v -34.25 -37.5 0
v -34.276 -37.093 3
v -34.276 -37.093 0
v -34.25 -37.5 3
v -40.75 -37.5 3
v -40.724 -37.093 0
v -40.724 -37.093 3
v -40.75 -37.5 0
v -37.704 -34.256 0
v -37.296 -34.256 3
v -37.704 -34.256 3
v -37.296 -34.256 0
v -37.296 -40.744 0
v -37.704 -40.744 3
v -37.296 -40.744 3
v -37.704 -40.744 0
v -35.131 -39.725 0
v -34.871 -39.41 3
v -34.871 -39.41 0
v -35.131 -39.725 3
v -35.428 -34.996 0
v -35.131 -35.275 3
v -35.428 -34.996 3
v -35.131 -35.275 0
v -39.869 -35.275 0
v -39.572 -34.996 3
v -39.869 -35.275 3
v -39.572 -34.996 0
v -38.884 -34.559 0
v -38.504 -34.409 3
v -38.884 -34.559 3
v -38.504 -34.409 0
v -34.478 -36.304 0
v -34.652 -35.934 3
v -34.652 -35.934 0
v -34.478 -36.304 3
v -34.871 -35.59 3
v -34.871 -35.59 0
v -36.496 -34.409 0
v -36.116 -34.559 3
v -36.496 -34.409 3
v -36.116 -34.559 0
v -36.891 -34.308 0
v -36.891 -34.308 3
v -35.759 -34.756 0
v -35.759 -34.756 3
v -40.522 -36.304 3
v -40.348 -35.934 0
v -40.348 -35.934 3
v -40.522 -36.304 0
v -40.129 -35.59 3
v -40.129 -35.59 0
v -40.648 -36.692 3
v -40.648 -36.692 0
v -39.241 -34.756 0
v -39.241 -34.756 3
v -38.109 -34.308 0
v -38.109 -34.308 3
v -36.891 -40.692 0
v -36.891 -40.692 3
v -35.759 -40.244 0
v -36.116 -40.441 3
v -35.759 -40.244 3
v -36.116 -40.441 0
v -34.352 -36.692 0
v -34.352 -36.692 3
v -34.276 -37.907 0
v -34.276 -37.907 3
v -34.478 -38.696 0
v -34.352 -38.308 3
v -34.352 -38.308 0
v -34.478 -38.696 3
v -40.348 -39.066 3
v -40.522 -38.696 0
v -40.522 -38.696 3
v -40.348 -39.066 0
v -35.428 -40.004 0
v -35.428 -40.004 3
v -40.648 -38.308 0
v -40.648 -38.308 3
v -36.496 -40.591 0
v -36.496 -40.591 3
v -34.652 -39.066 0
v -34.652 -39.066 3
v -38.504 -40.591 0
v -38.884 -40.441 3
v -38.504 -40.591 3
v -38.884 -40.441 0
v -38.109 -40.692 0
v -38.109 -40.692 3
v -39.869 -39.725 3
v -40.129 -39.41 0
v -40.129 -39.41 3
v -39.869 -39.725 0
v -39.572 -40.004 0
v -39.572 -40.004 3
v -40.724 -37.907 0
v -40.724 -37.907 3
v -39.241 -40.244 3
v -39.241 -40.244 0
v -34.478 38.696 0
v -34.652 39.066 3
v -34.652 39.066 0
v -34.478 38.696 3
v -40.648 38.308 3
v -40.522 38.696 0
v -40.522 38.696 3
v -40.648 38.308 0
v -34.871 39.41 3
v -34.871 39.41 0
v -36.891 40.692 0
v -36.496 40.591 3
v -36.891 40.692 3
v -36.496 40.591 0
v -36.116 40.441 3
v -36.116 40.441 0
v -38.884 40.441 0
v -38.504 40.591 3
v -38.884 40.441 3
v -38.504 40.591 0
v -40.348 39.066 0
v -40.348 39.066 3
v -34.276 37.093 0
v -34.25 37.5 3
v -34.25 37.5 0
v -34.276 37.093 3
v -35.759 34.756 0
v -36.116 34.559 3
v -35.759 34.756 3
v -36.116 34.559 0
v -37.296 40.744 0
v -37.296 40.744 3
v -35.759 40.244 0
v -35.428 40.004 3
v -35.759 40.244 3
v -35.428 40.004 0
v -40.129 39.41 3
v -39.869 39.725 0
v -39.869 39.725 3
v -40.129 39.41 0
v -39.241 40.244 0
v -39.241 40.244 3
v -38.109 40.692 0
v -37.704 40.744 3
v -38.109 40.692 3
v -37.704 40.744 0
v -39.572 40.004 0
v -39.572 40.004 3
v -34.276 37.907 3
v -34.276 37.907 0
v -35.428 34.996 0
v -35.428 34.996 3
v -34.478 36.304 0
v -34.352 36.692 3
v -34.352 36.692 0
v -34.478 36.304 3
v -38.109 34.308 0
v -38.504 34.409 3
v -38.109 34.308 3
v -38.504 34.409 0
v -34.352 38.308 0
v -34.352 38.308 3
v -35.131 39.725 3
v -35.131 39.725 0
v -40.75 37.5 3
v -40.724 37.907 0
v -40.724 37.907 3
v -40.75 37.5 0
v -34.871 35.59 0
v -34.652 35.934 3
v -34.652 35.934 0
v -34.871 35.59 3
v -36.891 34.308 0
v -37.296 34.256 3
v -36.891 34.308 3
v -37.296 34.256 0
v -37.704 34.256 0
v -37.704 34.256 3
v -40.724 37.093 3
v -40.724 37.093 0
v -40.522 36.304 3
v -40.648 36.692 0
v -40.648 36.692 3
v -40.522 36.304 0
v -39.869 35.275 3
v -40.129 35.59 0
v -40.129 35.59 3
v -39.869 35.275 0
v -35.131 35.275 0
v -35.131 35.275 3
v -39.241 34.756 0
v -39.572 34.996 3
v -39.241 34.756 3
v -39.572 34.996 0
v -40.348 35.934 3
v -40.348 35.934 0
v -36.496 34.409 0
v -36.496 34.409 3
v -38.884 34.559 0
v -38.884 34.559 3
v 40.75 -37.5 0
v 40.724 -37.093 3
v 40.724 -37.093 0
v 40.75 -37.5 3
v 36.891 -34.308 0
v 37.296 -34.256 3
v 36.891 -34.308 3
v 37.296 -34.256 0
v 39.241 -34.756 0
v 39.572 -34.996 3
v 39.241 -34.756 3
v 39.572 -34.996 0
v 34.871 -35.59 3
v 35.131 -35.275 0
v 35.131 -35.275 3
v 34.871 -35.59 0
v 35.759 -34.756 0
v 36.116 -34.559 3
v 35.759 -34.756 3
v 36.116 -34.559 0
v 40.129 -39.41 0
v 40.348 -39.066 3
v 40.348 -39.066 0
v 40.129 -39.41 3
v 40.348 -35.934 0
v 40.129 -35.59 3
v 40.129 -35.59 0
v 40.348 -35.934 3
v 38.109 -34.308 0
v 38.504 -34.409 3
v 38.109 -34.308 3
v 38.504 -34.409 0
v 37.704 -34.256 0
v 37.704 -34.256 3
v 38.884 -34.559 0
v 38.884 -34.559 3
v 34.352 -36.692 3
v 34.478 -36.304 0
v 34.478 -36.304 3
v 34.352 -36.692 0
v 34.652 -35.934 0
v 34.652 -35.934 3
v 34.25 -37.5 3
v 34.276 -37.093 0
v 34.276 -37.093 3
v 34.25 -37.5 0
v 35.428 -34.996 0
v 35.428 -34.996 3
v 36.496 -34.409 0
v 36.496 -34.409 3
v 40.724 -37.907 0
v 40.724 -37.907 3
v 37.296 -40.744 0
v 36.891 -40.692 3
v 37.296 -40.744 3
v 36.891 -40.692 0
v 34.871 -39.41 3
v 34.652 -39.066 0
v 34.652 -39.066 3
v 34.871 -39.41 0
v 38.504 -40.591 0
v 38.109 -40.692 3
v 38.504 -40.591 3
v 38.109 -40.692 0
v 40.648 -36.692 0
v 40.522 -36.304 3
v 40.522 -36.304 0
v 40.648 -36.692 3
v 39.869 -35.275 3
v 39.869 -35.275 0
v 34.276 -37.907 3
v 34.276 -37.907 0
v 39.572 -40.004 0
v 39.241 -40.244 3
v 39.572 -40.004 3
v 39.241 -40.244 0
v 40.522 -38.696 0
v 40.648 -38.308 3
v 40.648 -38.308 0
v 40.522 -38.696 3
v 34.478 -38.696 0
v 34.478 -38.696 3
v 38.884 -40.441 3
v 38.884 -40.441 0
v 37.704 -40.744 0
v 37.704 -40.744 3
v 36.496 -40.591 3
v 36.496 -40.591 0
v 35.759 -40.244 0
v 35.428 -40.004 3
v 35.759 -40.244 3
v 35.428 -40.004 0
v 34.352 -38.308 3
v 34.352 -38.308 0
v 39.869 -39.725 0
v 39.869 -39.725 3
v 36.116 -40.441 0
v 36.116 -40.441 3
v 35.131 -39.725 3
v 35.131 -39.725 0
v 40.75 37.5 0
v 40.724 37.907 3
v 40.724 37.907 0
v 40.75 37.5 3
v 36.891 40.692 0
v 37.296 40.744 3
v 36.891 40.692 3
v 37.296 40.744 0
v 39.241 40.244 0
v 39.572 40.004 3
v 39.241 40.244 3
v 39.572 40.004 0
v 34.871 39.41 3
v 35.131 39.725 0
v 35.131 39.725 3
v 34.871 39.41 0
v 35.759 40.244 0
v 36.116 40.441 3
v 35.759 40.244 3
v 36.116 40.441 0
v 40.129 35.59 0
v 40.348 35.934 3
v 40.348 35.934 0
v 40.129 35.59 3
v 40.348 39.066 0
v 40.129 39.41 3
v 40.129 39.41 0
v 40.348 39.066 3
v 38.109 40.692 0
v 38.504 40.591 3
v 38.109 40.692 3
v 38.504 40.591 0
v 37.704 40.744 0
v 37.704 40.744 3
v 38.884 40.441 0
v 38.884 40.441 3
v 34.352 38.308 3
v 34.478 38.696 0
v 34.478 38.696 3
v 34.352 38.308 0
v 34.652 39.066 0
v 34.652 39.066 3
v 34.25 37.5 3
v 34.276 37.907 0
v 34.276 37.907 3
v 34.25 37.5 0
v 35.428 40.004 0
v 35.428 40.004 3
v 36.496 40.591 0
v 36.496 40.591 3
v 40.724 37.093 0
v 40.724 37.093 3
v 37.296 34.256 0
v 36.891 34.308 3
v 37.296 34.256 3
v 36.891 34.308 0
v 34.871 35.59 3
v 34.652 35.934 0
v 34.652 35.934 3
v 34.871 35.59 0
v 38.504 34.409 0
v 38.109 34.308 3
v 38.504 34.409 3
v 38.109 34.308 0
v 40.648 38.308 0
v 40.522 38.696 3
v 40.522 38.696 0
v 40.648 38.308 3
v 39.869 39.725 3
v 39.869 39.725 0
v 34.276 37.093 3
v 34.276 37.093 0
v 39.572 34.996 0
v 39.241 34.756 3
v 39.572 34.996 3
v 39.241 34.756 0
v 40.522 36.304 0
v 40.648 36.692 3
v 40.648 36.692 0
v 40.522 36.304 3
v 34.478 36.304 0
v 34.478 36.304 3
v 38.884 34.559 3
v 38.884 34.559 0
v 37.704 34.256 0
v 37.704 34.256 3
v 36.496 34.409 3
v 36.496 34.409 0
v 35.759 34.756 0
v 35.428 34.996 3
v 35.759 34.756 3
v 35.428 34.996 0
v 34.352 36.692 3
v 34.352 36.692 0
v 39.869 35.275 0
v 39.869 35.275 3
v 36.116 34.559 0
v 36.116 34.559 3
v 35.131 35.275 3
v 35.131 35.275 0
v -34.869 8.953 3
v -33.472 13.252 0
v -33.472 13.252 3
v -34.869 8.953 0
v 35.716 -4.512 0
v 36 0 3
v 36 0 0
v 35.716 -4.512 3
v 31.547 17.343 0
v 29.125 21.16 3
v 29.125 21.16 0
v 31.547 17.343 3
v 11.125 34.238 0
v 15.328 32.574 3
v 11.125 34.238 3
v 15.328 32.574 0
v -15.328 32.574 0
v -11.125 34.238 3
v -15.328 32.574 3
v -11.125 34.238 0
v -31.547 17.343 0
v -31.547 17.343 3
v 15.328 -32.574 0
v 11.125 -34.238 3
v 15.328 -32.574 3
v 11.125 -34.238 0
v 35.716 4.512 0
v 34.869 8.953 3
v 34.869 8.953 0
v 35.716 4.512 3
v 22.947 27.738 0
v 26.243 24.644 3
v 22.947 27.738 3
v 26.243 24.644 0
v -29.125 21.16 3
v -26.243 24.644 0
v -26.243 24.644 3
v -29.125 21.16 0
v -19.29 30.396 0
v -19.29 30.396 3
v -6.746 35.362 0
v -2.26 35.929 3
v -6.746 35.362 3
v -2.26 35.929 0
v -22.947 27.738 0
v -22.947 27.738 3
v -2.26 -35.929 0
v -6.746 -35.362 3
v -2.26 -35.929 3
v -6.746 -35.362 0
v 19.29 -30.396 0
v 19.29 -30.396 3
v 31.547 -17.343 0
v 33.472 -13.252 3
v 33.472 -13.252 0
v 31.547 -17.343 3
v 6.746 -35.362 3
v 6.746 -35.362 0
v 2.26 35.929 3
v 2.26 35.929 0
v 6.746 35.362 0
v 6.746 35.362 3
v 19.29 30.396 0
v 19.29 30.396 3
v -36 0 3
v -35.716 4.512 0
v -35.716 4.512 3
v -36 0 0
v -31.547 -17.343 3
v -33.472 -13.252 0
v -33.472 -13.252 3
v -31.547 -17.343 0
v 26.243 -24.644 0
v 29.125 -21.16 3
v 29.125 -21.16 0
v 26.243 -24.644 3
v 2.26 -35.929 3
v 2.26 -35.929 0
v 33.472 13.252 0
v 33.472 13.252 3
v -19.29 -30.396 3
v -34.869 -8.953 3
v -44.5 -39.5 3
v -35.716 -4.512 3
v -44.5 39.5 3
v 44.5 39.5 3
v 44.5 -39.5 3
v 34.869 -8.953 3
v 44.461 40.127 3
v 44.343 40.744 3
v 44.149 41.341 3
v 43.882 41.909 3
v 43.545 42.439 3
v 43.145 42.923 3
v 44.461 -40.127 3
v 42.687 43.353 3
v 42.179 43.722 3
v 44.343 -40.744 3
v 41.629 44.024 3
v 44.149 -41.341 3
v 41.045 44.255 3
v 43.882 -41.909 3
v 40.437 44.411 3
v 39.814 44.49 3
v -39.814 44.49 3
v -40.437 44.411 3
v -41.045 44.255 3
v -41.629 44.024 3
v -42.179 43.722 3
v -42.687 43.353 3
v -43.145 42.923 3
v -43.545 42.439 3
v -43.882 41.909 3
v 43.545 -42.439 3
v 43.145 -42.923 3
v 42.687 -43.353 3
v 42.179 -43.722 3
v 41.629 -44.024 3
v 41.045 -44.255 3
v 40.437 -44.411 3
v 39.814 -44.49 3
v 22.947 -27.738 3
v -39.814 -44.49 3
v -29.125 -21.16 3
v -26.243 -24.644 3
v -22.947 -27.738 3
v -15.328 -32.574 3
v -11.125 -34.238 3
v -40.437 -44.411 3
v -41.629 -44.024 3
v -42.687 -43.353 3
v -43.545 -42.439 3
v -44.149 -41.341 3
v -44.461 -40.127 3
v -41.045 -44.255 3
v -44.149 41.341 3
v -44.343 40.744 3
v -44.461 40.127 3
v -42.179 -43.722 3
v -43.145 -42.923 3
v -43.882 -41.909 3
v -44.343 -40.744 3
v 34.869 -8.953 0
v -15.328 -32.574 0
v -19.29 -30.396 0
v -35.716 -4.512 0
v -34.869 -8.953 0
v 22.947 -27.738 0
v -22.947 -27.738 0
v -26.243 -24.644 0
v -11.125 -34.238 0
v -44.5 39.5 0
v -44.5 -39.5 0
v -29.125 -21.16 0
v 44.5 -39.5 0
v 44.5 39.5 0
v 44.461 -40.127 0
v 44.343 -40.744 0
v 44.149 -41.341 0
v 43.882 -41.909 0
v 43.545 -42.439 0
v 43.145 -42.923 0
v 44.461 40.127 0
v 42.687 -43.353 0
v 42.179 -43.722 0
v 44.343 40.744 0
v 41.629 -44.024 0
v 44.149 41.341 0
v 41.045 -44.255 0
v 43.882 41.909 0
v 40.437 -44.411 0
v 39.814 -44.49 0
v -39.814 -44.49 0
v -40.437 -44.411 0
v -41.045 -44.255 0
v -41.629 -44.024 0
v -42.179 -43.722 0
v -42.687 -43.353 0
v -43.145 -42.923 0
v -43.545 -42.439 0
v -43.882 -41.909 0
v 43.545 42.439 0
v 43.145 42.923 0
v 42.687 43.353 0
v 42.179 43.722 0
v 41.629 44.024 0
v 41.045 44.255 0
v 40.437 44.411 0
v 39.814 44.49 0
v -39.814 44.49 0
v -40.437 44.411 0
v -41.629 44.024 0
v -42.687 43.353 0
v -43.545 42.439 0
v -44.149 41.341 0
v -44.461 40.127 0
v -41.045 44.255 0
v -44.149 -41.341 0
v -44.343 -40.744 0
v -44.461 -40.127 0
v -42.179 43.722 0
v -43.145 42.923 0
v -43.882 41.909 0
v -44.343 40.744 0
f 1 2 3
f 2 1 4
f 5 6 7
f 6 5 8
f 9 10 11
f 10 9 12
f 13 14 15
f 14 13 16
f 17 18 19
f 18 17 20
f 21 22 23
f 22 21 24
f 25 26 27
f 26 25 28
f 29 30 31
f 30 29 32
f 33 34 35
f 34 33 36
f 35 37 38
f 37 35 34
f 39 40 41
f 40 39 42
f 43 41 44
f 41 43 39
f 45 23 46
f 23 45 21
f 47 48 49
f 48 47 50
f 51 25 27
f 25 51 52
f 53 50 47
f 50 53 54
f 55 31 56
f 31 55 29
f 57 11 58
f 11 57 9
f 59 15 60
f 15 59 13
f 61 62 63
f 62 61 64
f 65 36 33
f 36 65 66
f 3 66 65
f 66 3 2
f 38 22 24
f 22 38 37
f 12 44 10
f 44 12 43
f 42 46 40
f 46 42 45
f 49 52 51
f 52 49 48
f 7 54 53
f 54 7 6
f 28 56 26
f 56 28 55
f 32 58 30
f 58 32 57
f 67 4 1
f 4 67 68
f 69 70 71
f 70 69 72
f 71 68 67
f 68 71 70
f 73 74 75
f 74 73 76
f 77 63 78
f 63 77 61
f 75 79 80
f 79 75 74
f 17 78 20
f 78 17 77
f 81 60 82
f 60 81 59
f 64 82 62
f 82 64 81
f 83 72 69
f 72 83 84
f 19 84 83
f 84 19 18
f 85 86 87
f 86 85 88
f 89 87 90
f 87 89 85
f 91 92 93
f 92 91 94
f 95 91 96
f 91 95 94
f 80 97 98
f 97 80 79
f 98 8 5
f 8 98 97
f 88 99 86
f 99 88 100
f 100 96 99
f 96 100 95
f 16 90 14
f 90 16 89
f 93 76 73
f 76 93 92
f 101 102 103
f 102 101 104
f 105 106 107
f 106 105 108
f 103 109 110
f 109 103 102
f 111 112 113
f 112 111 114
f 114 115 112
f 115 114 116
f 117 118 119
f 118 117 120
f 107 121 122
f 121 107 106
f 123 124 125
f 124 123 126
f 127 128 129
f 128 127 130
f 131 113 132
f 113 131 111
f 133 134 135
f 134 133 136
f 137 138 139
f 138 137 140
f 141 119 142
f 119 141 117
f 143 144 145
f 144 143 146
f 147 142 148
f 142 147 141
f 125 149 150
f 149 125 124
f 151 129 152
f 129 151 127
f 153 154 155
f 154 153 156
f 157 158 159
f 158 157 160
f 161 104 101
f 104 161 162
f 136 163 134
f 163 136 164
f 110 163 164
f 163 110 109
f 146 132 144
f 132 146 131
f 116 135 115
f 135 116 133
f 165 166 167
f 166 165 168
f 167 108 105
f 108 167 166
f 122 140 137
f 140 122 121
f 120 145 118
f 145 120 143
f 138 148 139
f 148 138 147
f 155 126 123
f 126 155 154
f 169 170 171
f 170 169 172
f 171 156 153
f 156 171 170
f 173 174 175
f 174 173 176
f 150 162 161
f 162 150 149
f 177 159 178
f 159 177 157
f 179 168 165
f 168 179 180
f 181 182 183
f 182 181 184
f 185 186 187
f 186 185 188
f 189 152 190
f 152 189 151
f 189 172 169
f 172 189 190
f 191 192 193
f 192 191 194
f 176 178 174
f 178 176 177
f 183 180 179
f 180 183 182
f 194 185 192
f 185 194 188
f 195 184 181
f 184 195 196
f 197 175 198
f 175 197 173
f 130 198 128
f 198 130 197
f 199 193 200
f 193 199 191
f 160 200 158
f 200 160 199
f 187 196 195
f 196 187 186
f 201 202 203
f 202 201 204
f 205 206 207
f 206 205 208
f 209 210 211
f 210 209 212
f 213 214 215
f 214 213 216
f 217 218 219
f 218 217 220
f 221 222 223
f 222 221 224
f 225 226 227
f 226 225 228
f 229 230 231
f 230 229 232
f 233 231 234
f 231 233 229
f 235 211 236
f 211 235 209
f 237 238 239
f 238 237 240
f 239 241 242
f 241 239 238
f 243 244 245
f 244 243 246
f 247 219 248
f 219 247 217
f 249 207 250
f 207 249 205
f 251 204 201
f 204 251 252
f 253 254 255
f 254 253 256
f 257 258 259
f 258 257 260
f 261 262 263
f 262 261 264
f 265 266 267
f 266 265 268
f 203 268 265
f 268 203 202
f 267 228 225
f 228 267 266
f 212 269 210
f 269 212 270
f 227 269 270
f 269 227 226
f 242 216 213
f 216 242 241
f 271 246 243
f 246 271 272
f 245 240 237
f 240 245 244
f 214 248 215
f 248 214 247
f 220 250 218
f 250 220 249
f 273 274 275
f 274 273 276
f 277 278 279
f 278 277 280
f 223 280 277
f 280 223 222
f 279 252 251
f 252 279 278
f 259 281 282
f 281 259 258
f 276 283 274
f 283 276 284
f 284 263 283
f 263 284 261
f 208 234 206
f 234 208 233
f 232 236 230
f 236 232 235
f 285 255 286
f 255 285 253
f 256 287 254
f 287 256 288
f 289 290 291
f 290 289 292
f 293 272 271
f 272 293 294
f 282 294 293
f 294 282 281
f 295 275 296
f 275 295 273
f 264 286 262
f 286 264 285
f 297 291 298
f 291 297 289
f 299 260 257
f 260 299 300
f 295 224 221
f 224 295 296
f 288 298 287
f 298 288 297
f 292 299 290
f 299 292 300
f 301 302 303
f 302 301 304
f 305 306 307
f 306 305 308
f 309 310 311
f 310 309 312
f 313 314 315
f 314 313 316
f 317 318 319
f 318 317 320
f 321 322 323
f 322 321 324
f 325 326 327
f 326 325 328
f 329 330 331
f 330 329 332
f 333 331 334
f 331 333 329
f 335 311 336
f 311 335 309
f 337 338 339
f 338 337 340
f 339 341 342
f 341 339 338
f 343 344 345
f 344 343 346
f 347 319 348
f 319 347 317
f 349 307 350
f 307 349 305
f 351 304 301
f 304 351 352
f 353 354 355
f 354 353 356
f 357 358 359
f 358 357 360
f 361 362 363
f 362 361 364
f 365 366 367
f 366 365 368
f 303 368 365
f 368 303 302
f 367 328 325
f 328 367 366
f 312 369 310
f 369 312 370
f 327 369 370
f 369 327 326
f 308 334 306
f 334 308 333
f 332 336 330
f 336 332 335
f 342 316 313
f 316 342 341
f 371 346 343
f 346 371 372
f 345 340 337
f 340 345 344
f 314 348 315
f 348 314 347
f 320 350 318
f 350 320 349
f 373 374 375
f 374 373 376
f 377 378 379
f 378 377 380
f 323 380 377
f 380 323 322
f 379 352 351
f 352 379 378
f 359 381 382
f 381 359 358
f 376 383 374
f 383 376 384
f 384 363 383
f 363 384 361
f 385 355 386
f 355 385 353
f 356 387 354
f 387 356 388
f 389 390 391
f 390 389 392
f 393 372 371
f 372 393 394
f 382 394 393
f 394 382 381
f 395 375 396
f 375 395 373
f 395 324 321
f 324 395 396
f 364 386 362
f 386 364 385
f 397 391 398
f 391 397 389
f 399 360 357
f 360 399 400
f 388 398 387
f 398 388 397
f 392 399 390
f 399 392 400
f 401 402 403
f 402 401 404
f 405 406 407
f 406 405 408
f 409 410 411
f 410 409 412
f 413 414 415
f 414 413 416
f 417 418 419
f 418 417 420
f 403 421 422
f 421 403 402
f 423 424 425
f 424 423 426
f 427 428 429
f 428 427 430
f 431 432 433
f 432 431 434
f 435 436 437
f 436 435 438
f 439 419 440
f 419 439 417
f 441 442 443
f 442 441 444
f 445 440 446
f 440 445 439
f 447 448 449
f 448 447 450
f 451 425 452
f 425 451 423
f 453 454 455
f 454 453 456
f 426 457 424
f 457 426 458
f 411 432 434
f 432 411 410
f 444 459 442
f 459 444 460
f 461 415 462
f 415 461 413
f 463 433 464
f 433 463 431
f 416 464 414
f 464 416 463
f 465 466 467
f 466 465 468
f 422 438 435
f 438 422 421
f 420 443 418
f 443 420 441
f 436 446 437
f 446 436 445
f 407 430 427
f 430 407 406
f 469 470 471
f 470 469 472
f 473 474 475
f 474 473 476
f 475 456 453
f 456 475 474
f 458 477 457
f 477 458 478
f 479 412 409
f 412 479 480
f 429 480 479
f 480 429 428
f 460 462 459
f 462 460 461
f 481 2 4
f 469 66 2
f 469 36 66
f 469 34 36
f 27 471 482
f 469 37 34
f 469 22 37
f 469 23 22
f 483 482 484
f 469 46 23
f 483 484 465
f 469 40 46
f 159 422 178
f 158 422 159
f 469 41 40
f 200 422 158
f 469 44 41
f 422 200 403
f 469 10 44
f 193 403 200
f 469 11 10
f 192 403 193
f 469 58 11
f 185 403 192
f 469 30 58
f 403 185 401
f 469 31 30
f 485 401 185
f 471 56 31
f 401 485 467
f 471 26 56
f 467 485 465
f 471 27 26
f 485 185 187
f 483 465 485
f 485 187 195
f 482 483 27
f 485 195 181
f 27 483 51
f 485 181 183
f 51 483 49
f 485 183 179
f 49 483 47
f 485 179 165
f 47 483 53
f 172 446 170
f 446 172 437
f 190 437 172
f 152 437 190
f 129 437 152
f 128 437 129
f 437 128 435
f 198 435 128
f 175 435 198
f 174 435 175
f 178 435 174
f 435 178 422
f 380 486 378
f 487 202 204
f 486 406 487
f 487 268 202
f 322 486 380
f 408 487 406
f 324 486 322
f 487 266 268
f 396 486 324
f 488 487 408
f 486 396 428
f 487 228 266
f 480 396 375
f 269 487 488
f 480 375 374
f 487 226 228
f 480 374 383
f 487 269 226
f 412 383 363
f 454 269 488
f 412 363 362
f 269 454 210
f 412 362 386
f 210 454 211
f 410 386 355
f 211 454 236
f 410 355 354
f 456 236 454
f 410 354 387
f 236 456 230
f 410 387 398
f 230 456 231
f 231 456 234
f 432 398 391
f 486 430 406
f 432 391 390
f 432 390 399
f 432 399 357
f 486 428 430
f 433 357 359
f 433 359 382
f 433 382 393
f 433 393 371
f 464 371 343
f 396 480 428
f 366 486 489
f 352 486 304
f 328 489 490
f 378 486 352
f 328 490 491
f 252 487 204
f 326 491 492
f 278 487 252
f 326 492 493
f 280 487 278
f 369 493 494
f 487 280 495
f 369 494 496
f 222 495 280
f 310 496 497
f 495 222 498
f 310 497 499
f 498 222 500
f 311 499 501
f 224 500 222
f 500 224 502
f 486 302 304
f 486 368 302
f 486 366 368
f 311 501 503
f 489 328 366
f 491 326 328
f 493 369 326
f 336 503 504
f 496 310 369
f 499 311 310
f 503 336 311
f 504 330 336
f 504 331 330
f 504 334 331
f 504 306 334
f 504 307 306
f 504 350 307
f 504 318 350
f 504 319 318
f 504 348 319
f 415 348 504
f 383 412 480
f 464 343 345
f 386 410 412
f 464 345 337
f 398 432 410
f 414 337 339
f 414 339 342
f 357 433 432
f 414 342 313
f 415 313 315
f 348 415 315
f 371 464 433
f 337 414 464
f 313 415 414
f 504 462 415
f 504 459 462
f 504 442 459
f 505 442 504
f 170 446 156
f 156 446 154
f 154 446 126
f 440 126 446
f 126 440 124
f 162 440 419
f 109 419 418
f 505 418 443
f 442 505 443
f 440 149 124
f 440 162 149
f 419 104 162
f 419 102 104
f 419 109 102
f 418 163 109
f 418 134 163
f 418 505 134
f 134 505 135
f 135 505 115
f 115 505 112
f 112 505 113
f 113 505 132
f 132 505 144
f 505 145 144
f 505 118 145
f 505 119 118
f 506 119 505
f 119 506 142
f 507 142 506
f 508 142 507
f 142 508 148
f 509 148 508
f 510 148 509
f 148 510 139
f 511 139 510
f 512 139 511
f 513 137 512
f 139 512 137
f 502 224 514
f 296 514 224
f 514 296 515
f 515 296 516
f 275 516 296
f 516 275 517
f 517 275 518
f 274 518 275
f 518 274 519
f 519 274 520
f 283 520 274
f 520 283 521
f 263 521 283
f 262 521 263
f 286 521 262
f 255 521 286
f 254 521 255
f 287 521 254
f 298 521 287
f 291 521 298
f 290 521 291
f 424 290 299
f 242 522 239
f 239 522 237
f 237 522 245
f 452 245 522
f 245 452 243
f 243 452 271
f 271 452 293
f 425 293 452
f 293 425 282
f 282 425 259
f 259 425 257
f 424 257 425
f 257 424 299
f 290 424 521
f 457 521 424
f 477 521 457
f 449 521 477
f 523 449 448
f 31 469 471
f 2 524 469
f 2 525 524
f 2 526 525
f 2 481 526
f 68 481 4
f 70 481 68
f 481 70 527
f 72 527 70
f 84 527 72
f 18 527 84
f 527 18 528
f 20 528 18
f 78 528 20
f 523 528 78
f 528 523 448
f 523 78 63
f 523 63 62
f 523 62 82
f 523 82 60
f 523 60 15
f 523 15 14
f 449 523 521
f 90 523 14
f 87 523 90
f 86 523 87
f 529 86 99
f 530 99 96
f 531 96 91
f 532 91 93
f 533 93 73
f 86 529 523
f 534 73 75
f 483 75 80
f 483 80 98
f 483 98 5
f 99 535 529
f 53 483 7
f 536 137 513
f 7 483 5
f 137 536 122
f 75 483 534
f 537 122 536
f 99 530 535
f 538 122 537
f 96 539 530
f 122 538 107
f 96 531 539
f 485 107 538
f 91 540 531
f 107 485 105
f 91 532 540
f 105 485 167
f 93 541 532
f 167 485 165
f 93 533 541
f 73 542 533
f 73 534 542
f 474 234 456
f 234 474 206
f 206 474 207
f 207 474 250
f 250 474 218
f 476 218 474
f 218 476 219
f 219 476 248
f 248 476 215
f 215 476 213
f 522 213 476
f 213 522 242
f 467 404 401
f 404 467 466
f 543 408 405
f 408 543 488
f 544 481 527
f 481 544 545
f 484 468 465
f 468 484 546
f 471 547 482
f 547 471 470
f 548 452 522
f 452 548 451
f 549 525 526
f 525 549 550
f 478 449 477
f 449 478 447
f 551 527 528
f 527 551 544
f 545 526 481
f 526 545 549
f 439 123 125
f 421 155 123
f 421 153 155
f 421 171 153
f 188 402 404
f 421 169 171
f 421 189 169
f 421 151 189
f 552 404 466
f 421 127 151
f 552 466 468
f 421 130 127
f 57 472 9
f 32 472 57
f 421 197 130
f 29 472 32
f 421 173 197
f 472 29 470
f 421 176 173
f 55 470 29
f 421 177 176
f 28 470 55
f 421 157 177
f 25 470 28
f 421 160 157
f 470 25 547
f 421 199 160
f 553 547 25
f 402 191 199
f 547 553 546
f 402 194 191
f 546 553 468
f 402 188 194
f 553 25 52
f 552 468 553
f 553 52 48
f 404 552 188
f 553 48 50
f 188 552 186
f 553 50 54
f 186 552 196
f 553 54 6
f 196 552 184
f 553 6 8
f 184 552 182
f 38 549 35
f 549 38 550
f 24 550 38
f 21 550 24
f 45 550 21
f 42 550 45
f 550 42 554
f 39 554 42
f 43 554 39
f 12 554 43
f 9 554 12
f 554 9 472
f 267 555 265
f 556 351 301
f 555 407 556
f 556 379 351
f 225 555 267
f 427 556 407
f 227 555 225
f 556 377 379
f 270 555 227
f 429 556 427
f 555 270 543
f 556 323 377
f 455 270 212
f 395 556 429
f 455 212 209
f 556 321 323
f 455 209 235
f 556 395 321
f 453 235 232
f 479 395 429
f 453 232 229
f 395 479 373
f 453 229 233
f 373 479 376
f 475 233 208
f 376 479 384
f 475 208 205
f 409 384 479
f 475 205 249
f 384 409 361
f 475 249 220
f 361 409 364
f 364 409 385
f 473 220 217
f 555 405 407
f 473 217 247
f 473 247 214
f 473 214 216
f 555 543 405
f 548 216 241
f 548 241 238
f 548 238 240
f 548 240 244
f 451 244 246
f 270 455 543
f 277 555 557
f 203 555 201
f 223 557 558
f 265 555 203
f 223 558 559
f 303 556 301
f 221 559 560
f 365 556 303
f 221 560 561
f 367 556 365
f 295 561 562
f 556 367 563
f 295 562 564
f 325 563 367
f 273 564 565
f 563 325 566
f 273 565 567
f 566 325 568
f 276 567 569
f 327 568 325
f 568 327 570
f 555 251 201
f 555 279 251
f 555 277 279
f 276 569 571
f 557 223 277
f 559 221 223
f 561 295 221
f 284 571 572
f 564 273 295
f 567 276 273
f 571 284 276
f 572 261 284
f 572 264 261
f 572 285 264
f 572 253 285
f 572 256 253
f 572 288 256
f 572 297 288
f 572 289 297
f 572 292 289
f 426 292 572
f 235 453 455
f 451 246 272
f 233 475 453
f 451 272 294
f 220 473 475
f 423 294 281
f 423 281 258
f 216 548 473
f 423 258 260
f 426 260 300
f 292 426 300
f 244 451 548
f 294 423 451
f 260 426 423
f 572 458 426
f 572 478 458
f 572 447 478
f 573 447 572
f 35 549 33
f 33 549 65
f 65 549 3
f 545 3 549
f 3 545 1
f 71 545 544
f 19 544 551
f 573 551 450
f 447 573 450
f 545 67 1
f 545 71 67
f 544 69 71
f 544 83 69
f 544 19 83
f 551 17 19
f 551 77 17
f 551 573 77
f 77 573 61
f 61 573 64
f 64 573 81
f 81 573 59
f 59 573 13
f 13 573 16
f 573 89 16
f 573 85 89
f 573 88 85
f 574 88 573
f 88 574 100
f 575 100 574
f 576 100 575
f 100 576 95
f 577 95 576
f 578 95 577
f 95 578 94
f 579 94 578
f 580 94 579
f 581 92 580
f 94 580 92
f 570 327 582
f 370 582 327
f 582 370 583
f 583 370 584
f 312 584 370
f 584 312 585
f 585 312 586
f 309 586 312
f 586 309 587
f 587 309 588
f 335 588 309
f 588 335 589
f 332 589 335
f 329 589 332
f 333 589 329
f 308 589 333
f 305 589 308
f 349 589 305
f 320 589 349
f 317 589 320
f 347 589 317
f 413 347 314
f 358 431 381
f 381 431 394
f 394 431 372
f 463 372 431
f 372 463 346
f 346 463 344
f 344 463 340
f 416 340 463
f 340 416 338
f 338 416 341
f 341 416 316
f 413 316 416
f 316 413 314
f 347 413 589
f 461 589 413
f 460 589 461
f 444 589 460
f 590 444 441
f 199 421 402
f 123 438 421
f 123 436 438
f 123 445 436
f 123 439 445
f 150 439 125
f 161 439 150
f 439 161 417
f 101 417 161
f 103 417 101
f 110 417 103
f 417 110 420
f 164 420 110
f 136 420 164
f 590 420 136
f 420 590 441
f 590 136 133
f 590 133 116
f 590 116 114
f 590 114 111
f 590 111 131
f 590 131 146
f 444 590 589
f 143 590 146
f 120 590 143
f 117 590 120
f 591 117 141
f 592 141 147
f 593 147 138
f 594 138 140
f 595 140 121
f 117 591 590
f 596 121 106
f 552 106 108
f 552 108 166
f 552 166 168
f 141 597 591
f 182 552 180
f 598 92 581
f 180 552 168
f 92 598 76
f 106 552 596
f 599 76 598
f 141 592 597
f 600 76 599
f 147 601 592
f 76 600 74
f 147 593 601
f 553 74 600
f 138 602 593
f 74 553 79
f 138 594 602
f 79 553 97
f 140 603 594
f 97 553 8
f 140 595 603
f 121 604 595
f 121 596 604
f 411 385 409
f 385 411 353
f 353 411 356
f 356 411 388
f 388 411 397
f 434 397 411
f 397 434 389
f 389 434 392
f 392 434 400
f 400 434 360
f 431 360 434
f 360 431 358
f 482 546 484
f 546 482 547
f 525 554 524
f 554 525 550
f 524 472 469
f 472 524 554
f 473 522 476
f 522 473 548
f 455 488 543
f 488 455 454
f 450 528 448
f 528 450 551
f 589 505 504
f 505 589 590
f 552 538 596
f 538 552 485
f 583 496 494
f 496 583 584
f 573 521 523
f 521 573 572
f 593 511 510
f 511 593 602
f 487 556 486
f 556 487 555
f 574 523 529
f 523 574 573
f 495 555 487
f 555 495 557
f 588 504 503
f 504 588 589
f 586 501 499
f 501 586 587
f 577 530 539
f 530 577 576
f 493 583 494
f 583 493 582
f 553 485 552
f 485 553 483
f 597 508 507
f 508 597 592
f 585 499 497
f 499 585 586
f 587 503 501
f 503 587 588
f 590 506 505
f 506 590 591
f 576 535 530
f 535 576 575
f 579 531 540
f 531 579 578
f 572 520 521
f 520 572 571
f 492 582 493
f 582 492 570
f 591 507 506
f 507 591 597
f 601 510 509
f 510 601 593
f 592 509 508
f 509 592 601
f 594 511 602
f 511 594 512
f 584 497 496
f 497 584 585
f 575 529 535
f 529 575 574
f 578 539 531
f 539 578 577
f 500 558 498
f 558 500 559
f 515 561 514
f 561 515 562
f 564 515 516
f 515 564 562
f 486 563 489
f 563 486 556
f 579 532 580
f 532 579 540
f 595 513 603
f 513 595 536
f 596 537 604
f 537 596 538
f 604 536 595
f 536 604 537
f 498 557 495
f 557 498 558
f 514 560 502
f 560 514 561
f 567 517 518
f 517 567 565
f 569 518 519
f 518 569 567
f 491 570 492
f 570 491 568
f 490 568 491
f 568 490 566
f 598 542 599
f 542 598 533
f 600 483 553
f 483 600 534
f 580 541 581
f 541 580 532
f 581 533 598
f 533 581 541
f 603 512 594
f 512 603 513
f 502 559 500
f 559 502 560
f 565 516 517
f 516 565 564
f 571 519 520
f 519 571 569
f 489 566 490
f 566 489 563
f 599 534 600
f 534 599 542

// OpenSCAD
$fn = 50;


difference() {
	union() {
		hull() {
			translate(v = [-39.5000000000, 39.5000000000, 0]) {
				cylinder(h = 3, r = 5);
			}
			translate(v = [39.5000000000, 39.5000000000, 0]) {
				cylinder(h = 3, r = 5);
			}
			translate(v = [-39.5000000000, -39.5000000000, 0]) {
				cylinder(h = 3, r = 5);
			}
			translate(v = [39.5000000000, -39.5000000000, 0]) {
				cylinder(h = 3, r = 5);
			}
		}
	}
	union() {
		#translate(v = [-37.5000000000, -37.5000000000, -100.0000000000]) {
			cylinder(h = 200, r = 3.2500000000);
		}
		#translate(v = [-37.5000000000, 37.5000000000, -100.0000000000]) {
			cylinder(h = 200, r = 3.2500000000);
		}
		#translate(v = [37.5000000000, -37.5000000000, -100.0000000000]) {
			cylinder(h = 200, r = 3.2500000000);
		}
		#translate(v = [37.5000000000, 37.5000000000, -100.0000000000]) {
			cylinder(h = 200, r = 3.2500000000);
		}
		#cylinder(h = 3, r = 36.0000000000);
	}
}
